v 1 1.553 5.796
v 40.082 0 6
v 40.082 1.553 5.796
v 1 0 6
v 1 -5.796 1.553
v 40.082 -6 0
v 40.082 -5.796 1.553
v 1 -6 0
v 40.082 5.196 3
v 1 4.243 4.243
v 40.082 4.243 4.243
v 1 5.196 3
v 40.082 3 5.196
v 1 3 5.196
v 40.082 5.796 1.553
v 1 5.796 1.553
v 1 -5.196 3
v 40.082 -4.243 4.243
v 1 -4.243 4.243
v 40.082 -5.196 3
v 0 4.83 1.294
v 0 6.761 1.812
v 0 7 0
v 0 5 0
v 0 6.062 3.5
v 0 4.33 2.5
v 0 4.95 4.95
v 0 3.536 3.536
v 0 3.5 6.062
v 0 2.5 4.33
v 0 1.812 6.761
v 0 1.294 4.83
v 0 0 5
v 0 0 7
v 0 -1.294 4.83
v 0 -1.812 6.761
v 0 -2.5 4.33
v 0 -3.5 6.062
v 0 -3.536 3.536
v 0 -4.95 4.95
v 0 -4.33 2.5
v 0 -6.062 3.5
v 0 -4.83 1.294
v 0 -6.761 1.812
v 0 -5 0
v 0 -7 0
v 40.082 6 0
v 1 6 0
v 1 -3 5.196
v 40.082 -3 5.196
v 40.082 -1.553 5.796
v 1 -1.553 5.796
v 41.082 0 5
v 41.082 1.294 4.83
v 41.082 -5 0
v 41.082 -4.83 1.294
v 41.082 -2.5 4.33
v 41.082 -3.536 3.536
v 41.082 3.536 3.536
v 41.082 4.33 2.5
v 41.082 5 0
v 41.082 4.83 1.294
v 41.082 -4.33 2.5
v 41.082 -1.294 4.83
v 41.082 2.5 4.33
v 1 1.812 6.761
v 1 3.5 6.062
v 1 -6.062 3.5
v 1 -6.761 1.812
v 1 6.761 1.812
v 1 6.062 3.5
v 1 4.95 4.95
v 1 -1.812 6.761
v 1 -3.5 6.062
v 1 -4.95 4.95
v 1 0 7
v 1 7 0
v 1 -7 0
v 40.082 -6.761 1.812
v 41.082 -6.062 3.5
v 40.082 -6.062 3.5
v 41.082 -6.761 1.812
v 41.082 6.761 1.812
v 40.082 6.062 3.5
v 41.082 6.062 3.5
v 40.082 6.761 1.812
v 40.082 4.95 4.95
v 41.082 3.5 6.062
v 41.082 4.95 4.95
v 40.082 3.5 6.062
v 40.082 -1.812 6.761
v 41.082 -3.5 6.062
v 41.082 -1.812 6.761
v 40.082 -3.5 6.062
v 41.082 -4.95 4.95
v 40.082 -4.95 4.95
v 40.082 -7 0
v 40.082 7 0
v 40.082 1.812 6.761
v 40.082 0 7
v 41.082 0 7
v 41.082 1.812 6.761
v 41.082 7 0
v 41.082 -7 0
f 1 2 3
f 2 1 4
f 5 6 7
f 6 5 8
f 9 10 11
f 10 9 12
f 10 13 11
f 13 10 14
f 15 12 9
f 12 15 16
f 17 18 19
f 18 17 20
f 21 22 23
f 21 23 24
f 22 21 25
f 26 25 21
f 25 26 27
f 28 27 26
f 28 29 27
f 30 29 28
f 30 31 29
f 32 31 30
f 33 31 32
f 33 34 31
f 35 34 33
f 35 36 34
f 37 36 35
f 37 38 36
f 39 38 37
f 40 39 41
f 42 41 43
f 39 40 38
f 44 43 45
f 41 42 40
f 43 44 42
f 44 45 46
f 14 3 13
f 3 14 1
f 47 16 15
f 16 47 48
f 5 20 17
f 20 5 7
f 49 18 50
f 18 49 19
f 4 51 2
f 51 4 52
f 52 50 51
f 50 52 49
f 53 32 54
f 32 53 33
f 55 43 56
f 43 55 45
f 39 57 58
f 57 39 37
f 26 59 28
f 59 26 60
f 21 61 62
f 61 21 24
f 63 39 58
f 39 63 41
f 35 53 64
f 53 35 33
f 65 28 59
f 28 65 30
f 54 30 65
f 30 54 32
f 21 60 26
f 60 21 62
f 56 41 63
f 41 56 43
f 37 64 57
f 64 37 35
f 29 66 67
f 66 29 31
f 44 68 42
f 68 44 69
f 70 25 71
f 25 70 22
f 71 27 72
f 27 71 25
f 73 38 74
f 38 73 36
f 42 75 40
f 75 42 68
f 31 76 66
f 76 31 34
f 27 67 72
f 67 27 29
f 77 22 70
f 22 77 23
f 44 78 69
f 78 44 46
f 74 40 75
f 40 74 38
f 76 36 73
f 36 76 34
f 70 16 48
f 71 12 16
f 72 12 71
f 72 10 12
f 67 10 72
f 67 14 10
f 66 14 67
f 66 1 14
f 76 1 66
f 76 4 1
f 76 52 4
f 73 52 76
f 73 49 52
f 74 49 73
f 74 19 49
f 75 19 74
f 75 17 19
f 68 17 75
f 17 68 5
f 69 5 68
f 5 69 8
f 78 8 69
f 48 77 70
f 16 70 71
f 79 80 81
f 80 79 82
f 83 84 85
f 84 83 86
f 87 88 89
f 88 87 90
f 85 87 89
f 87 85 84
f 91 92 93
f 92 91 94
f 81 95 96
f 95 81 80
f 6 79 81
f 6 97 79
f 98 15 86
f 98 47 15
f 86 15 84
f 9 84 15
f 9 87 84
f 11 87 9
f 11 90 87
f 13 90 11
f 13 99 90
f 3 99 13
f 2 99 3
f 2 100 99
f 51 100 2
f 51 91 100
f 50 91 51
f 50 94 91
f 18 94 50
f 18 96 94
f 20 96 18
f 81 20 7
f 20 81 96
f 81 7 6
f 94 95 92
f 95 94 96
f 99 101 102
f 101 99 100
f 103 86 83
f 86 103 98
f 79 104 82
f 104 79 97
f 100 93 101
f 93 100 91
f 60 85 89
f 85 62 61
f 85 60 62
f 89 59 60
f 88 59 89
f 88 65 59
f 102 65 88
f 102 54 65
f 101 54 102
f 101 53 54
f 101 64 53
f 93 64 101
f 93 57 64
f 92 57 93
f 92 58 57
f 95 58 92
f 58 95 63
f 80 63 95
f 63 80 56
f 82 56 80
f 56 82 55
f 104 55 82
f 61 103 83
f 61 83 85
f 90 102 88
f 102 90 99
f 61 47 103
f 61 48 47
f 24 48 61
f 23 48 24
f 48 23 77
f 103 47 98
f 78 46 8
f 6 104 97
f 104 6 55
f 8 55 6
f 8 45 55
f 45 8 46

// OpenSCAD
// file: ../build_environments.scad
// build_environments.scad: modules to build level sections
//

module pool(diameter=10.0, wall_height=2.0, step_width=3.0, connections=[])
{
    difference() {
        union() {
        difference() {
            cylinder(h=0.5,r1=diameter+step_width,r2=diameter+step_width,$fn=48);
            translate([0,0,-0.1])
                cylinder(h=0.7,r1=diameter,r2=diameter,$fn=48);
        }
        difference() {
            cylinder(h=wall_height,r1=diameter+step_width+1.0,r2=diameter+step_width+1.0,$fn=48);
            translate([0,0,-0.1])
                cylinder(h=wall_height+0.2,r1=diameter+step_width,r2=diameter+step_width,$fn=48);
        }
        }
    
        for (c = connections)
        {
            rotate([0,90,0]) {
                angle = atan2(c[1],c[0]);
                rotate([-angle,0,0]) {
                    cylinder(h=diameter+5.0,r1=c[2],r2=c[2],$fn=48);
                }
            }
        }
    }
}

module straight(length=10.0, width=2.0, dy1=0.0, dy2=0.0, dz=0.0)
{
    dims = [0, 0, 0, 0, 0, (dz/length)];
    matrix = [
        [ 1, dims[0], dims[1], 0 ],
        [ dims[2], 1, dims[4], 0 ],
        [ dims[5], dims[3], 1, 0 ],
        [ 0, 0, 0, 1 ]
    ];
    multmatrix(matrix)
    difference() {
        translate([dy1,0,0])
        union() {
            rotate([0,90,0]) {
                difference() {
                    cylinder(h=(length-dy1-dy2),r1=width+1.0,r2=width+1.0,$fn=24);
                    translate([0,0,-0.1])
                        cylinder(h=(length-dy1-dy2+0.2),r1=width,r2=width,$fn=24);
                }
                difference() {
                    cylinder(h=1.0,r1=width+2.0,r2=width+2.0,$fn=24);
                    translate([0,0,-0.1])
                        cylinder(h=1.2,r1=width,r2=width,$fn=24);
                }
                translate([0,0,(length-dy1-dy2)-1.0]) {
                    difference() {
                        cylinder(h=1.0,r1=width+2.0,r2=width+2.0,$fn=24);
                        translate([0,0,-0.1])
                            cylinder(h=1.2,r1=width,r2=width,$fn=24);
                    }
                }
            }
        }
        translate([0,0,-(2*width+4.0)/2])
            cube([3*length,3*length,2*width+4.0],center=true);
    }
}

module curve(p0=[0,0], center=[0,0], dir=1, angle=0.0, width=2.0)
{
    radius = sqrt((p0[0]-center[0])*(p0[0]-center[0]) + (p0[1]-center[1])*(p0[1]-center[1]));
    if (dir == 0) {
        difference() {
            rotate([0,0,-90])
            difference() {
                rotate_extrude(angle = angle, convexity = 10, $fn=32)
                    translate([radius, 0, 0])
                        circle(r = width+1.0,$fn=24);
                rotate([0,0,-1.0])
                    rotate_extrude(angle = angle+2.0, convexity = 10, $fn=32)
                        translate([radius, 0, 0])
                            circle(r = width,$fn=24);
            }
            translate([0,0,-(2*width+4.0)/2])
                cube([5*radius,5*radius,2*width+4.0],center=true);
        }
    }
    else {
        difference() {
            rotate([0,0,90])
            difference() {
                rotate_extrude(angle = -angle, convexity = 10, $fn=32)
                    translate([radius, 0, 0])
                        circle(r = width+1.0,$fn=24);
                rotate([0,0,1.0])
                    rotate_extrude(angle = -angle-2.0, convexity = 10, $fn=32)
                        translate([radius, 0, 0])
                            circle(r = width,$fn=24);
            }
            translate([0,0,-(2*width+4.0)/2])
                cube([5*radius,5*radius,2*width+4.0],center=true);
        }
    }

}

// test pool
//pool(diameter=12.0000, wall_height=3.0000, step_width=3.0000, connections=[[0.0000,-26.0000,2.0000], [23.6074,0.0000,2.0000]]);

// test straight, slope
//straight(length=26.0000, width=2.0000, dy1=11.8322, dy2=6.7082, dz=0.0000);
//straight(length=29.1549, width=12.0000, dy1=0.0000, dy2=0.0000, dz=-15.0000);

// test curve
//curve(p0=[23.6074, 0.0000], center=[23.6074, 5.0000], dir=0, angle=60.1011, width=2.0000);
//curve(p0=[33.6426, 12.4219], center=[37.9771, 9.9295], dir=1, angle=120.4627, width=2.0000);
// main file
use <../build_environments.scad>;
straight(length=41.0818, width=5.0000, dy1=0.0000, dy2=0.0000, dz=0.0000);
